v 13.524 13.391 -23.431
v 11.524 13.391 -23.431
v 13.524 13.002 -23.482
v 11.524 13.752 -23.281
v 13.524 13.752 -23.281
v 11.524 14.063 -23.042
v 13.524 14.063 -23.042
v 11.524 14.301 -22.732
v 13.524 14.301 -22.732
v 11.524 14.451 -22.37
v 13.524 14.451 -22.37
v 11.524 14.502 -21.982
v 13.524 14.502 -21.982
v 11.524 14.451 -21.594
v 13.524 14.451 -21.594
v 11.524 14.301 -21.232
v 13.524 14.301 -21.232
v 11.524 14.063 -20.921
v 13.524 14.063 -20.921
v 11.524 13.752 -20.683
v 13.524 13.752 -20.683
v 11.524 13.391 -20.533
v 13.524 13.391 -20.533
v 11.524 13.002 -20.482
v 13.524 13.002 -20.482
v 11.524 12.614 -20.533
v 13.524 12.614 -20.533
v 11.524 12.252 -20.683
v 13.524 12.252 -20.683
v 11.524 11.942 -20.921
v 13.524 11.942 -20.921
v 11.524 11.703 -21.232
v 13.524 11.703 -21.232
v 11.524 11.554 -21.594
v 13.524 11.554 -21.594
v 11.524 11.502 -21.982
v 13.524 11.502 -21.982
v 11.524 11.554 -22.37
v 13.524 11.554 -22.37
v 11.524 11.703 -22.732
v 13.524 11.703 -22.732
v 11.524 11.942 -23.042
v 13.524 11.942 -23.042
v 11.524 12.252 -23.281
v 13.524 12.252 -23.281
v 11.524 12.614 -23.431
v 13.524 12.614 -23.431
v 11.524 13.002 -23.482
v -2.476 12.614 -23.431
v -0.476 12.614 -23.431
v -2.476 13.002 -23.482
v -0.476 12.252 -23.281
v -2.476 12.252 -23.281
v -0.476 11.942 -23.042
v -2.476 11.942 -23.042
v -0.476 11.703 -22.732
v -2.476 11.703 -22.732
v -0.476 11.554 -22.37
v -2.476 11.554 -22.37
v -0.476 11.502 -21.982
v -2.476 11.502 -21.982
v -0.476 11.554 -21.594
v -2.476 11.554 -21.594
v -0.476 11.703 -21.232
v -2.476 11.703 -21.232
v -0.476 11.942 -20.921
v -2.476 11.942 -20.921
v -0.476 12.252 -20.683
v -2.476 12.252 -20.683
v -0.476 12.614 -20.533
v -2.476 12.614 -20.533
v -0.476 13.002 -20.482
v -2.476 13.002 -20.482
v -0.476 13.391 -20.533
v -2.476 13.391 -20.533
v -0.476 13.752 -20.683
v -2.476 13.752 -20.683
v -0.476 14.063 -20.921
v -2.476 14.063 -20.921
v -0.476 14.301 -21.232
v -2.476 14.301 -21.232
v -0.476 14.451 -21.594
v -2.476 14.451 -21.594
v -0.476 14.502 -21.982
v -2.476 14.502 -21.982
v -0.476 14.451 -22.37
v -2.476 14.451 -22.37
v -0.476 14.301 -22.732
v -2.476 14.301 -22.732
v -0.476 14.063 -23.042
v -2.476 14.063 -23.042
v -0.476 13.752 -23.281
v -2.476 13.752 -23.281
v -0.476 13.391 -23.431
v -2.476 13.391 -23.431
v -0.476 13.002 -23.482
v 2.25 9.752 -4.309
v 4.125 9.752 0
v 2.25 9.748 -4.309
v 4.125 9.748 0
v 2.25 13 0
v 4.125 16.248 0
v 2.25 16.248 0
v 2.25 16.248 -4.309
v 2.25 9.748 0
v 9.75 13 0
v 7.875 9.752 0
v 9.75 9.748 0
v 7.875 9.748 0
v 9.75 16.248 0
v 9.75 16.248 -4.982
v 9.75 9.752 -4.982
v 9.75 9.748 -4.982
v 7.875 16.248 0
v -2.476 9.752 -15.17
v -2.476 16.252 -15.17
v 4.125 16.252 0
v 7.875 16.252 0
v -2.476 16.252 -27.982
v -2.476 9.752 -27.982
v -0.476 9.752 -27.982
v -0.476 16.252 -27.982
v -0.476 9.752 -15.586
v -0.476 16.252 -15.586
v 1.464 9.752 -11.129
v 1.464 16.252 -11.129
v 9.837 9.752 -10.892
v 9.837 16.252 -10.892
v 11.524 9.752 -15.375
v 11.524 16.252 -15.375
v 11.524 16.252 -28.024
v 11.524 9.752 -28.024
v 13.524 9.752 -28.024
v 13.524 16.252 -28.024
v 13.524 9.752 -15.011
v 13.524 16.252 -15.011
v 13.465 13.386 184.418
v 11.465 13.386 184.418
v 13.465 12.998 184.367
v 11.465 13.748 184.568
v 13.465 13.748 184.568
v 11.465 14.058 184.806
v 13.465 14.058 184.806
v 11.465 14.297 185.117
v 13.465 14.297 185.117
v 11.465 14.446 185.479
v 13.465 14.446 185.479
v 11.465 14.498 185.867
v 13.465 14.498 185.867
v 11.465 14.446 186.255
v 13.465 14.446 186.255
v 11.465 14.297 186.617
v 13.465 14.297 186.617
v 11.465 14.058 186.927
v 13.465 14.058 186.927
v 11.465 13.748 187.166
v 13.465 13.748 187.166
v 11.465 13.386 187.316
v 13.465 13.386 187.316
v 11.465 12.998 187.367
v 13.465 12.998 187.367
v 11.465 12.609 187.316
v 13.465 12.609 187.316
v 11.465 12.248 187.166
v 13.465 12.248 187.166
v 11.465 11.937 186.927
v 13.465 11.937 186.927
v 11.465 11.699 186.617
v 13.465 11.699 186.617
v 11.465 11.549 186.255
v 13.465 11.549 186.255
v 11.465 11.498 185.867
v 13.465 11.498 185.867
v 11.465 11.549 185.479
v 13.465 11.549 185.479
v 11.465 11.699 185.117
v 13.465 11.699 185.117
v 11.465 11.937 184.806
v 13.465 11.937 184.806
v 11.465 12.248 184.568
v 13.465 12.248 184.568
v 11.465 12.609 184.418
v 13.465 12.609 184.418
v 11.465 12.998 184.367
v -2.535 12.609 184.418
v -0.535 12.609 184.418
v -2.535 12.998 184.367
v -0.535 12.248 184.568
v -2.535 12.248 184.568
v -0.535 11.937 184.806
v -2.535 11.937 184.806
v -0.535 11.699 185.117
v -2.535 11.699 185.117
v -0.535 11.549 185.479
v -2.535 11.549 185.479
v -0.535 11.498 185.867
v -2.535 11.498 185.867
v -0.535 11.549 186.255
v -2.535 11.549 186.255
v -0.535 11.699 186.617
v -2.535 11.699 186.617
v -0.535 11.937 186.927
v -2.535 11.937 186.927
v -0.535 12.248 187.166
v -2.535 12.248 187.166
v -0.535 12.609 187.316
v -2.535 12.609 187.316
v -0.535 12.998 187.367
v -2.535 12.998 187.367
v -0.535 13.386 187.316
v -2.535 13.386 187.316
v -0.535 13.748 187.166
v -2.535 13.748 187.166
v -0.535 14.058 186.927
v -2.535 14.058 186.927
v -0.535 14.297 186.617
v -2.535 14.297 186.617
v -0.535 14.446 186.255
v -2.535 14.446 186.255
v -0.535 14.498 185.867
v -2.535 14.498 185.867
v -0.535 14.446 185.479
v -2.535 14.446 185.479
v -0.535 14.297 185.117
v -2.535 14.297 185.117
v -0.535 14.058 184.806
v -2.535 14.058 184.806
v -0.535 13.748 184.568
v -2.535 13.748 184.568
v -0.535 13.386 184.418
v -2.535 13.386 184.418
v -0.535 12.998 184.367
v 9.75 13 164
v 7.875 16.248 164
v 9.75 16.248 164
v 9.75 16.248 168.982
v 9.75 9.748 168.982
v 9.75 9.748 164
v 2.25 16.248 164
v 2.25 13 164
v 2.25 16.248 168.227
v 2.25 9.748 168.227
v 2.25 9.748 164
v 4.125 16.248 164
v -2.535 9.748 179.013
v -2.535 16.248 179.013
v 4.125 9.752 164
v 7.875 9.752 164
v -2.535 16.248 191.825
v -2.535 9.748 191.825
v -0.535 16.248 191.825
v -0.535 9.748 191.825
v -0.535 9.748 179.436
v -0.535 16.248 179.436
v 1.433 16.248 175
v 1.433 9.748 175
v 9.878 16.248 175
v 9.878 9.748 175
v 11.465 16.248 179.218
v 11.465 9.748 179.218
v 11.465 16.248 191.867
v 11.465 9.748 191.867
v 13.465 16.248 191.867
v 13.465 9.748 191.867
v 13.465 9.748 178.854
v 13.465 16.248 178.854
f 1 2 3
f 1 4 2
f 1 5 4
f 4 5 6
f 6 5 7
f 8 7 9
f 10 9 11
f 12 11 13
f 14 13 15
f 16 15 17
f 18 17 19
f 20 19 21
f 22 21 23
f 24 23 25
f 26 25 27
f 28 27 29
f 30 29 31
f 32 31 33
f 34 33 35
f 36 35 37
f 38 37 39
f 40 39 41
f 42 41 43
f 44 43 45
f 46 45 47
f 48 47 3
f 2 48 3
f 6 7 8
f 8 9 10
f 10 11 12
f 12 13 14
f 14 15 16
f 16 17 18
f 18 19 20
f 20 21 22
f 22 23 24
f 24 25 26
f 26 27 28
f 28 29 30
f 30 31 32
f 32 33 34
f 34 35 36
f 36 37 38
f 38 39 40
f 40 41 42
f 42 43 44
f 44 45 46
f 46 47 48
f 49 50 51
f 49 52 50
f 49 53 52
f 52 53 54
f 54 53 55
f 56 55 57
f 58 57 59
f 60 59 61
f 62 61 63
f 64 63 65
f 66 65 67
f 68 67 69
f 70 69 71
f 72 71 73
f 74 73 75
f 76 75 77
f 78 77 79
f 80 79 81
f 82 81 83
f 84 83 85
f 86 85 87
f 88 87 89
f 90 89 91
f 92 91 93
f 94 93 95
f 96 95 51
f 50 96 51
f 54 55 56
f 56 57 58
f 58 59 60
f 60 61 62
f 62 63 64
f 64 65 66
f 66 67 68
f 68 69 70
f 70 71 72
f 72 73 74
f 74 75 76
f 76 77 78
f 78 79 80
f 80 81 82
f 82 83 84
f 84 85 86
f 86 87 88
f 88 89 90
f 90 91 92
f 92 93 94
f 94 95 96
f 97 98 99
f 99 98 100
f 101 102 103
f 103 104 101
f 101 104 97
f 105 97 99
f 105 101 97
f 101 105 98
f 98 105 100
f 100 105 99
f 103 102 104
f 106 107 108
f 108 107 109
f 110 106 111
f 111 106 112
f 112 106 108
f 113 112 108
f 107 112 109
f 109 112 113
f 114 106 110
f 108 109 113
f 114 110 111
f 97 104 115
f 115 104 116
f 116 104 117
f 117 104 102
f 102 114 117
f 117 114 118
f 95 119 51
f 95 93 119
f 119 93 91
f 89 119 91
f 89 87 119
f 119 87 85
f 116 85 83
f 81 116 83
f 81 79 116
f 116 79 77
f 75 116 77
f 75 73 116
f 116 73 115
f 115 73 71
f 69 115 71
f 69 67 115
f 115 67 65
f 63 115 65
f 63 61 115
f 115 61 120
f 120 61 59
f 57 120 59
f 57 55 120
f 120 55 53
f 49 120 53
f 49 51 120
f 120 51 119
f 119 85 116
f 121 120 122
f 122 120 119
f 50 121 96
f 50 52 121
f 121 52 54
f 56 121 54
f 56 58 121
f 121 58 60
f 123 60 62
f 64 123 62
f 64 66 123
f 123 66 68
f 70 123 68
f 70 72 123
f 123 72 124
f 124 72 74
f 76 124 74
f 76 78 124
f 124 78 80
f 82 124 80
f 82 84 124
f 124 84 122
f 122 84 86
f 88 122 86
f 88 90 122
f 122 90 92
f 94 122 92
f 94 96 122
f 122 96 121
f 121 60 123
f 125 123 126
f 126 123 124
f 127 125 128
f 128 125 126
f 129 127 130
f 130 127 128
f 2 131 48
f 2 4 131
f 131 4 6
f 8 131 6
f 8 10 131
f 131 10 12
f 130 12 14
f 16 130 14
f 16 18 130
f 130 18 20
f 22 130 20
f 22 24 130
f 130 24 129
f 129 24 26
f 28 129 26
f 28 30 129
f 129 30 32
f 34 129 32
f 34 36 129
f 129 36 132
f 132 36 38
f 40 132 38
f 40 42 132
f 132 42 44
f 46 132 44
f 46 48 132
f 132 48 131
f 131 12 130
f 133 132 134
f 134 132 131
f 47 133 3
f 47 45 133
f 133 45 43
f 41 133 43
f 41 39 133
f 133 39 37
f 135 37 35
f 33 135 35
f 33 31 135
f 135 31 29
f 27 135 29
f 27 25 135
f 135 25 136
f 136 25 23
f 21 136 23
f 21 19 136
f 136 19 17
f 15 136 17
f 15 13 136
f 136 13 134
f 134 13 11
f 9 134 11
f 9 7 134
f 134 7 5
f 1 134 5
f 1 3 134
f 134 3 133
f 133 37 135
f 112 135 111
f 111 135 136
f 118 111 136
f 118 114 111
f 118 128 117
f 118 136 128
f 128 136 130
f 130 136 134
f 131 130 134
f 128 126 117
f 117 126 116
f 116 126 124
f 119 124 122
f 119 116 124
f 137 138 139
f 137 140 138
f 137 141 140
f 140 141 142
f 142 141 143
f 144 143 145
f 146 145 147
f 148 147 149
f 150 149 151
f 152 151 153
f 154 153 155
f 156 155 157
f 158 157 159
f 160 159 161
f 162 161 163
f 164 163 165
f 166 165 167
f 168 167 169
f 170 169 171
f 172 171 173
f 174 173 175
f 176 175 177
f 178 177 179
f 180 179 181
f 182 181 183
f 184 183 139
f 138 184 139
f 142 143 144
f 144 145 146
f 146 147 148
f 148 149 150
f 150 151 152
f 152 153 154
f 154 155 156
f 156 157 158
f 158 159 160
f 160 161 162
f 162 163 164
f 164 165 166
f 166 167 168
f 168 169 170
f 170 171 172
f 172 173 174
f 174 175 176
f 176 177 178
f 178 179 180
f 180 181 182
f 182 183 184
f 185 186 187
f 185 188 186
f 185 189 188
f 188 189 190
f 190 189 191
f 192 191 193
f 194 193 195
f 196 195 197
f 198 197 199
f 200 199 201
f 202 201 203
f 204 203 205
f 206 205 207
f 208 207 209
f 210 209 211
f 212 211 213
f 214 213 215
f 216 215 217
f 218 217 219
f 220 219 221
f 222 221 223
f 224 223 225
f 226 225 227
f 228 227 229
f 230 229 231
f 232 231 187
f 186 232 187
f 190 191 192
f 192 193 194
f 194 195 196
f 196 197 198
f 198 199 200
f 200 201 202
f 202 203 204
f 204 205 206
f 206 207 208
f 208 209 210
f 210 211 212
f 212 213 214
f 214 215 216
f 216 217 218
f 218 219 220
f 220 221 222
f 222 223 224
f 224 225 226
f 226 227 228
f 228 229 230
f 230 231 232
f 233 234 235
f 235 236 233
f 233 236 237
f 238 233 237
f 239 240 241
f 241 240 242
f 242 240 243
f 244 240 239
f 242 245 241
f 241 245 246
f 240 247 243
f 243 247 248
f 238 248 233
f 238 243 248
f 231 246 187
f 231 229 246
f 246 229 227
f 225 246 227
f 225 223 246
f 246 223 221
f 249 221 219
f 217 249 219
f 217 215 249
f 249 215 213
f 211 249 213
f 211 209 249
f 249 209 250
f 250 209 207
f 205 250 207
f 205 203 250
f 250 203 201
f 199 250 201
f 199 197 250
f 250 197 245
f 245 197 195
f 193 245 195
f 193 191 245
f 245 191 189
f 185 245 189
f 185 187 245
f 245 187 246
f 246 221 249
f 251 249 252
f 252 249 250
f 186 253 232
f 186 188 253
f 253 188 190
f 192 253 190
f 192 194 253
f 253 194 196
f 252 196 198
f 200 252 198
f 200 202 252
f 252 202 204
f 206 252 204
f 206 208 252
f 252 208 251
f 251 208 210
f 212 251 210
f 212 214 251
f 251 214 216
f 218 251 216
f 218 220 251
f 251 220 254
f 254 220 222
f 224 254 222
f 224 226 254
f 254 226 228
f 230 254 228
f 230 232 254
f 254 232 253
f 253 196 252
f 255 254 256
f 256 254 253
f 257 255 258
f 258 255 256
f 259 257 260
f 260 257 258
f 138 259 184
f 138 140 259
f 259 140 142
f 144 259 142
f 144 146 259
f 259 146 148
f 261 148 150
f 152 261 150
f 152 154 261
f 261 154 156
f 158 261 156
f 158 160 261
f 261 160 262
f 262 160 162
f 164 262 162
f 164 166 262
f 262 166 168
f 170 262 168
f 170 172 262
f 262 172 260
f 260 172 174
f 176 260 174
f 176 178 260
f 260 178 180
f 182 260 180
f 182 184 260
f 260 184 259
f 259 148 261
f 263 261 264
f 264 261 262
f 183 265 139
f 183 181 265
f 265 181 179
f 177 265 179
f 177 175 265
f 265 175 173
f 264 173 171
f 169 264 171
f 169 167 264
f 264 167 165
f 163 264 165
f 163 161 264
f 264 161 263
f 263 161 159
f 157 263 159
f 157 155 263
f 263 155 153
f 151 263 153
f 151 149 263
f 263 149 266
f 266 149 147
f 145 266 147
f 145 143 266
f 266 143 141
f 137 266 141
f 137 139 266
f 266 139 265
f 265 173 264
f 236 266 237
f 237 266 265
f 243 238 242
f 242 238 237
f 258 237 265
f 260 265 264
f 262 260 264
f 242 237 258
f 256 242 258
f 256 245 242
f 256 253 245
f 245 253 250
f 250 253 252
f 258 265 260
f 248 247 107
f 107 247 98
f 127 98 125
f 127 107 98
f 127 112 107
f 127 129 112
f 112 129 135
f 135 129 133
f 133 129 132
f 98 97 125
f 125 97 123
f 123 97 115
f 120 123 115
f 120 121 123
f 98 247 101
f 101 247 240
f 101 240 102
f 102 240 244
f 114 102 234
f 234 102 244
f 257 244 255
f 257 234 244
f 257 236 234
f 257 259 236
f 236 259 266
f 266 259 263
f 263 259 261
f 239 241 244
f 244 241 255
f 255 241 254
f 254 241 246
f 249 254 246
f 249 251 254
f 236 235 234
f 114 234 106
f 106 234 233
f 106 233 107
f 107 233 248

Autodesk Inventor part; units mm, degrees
ref_plane "YZ Plane" through (0, 0, 0) normal (1, 0, 0) x (0, 1, 0)
ref_plane "XZ Plane" through (0, 0, 0) normal (0, 1, 0) x (-1, 0, 0)
ref_plane "XY Plane" through (0, 0, 0) normal (0, 0, 1) x (1, 0, 0)
sketch "Sketch1" plane through (0, 0, 0) normal (0, 0, 1) x (1, 0, 0)
  line L0 (9.75, 13) -> (7.875, 9.7524)
  line L1 (7.875, 9.7524) -> (4.125, 9.7524)
  line L2 (4.125, 9.7524) -> (2.25, 13)
  line L3 (2.25, 13) -> (4.125, 16.2476)
  line L4 (4.125, 16.2476) -> (7.875, 16.2476)
  line L5 (7.875, 16.2476) -> (9.75, 13)
  point P0 (0, 0)
  point P1 (6, 13)
  dimension "d0" = 7.5
extrude "Extrusion1" add sketch "Sketch1" along normal blind 164
sketch "Sketch2" plane through (4.125, 16.2476, 0) normal (0, 1, 0) x (1, 0, 0)
  line L0 (3.75, -164) -> (5.625, -164) projected
  line L1 (3.75, -164) -> (0, -164) projected
  line L2 (0, -164) -> (-6.6597, -179.0128)
  line L3 (-1.875, 0) -> (-1.875, -164) projected
  line L4 (-6.6597, -191.8247) -> (-6.6597, -179.0128)
  line L5 (3.75, -164) -> (1.875, -164)
  line L6 (9.3403, -191.8668) -> (9.3403, -178.8539)
  line L7 (9.3403, -178.8539) -> (3.75, -164)
  line L8 (9.3403, -191.8668) -> (7.3403, -191.8668)
  line L9 (7.3403, -191.8668) -> (7.3403, -179.2178)
  line L10 (-6.6597, -191.8247) -> (-4.6597, -191.8247)
  line L11 (-4.6597, -191.8247) -> (-4.6597, -179.4364)
  line L12 (2.1735, -164.0436) -> (2.158, -164)
  line L13 (1.875, -175) -> (5.7529, -175)
  line L14 (-2.6917, -175) -> (1.875, -175)
  line L15 (-4.6597, -179.4364) -> (-2.6917, -175)
  line L16 (5.7529, -175) -> (7.3403, -179.2178)
  line L17 (1.875, -164) -> (1.875, -191.8247)
  point P0 (-4.125, 0)
  dimension "d12" = 2
  dimension "d13" = 2
  dimension "d16" = 27.8247
  dimension "d17" = 11
  dimension "d21" = 12
  dimension "d31" = 2
  dimension "d32" = 2
extrude "Extrusion2" add sketch "Sketch2" against normal blind 6.5
sketch "Sketch3" plane through (-2.5347, 9.7476, 179.0128) normal (-0.9141, 0, -0.4055) x (-0.4055, 0, 0.9141)
  point P0 (-164.6629, -9.7476)
sketch "Sketch5" plane through (4.125, 16.2476, 0) normal (0, 1, 0) x (1, 0, 0)
  line L0 (-1.875, -164) -> (0, -164) projected
  line L1 (-1.875, -164) -> (-1.875, -168.2268)
  line L2 (0, -164) -> (-6.6597, -179.0128) projected
  line L3 (3.75, -164) -> (5.625, -164) projected
  line L4 (5.625, -164) -> (5.625, -168.982)
  line L5 (9.3403, -178.8539) -> (3.75, -164) projected
  point P0 (-4.125, 0)
extrude "Extrusion3" add sketch "Sketch5" against normal blind 6.5
sketch "Sketch6" plane through (13.4653, 16.2476, 191.8668) normal (1, 0, 0) x (0, 0, -1)
  line L0 (0, 0) -> (0, -3.25)
  line L1 (0, 0) -> (0, -6.5) projected
  line L2 (0, -3.25) -> (6, -3.25)
  circle A0 centre (6, -3.25) radius 1.5
  point P0 (191.8668, -16.2476)
  dimension "d27" = 6
  dimension "d28" = 3
extrude "Extrusion4" cut sketch "Sketch6" against normal through all
sketch "Sketch7" plane through (4.125, 9.7524, 0) normal (0, -1, 0) x (1, 0, 0)
  line L0 (0, 0) -> (-6.6005, -15.1699)
  line L1 (-6.6005, -27.9818) -> (-6.6005, -15.1699)
  line L2 (9.3995, -28.0239) -> (9.3995, -15.011)
  line L3 (9.3995, -15.011) -> (3.75, 0)
  line L4 (9.3995, -28.0239) -> (7.3995, -28.0239)
  line L5 (7.3995, -28.0239) -> (7.3995, -15.3749)
  line L6 (-6.6005, -27.9818) -> (-4.6005, -27.9818)
  line L7 (-4.6005, -27.9818) -> (-4.6005, -15.5861)
  line L8 (1.9054, -10.9999) -> (5.7124, -10.8924)
  line L9 (-2.6612, -11.129) -> (1.9054, -10.9999)
  line L10 (-4.6005, -15.5861) -> (-2.6612, -11.129)
  line L11 (5.7124, -10.8924) -> (7.3995, -15.3749)
  line L12 (1.942, 0) -> (1.942, -27.8247)
  line L13 (5.625, 0) -> (3.75, 0) projected
  line L14 (0, 0) -> (3.75, 0) projected
  line L15 (3.75, 0) -> (0, 0)
  line L16 (3.75, 0) -> (0, 0) projected
  point P0 (-4.125, 0)
  dimension "d34" = 2
  dimension "d35" = 2
  dimension "d36" = 11
  dimension "d37" = 12
  dimension "d38" = 2
  dimension "d39" = 2
extrude "Extrusion5" add sketch "Sketch7" against normal blind 6.5
sketch "Sketch8" plane through (1.4333, 16.2476, 175) normal (0, 1, 0) x (1, 0, 0)
  line L0 (8.3167, 175) -> (6.4417, 175) projected
  line L1 (8.3167, 175) -> (8.3167, 179.982)
  line L2 (12.0911, 190.011) -> (6.4417, 175) projected
  line L3 (2.6917, 175) -> (0.8167, 175) projected
  line L4 (0.8167, 175) -> (0.8167, 179.3093)
  line L5 (-3.9089, 190.1699) -> (2.6917, 175) projected
  point P0 (-1.4333, 175)
extrude "Extrusion6" add sketch "Sketch8" against normal blind 6.5
sketch "Sketch9" plane through (13.5245, 9.7524, -15.011) normal (1, 0, 0) x (0, 0, -1)
  point P0 (-15.011, -9.7524)
sketch "Sketch10" plane through (13.5245, 9.7524, -15.011) normal (1, 0, 0) x (0, 0, -1)
  line L0 (12.9708, 0) -> (12.9708, 6.5) projected
  line L1 (12.9708, 3.25) -> (6.9708, 3.25)
  circle A0 centre (6.9708, 3.25) radius 1.5
  point P0 (-15.011, -9.7524)
  dimension "d44" = 6
  dimension "d45" = 3
extrude "Extrusion7" cut sketch "Sketch10" against normal through all
properties part number "Rod v1 220mm"
